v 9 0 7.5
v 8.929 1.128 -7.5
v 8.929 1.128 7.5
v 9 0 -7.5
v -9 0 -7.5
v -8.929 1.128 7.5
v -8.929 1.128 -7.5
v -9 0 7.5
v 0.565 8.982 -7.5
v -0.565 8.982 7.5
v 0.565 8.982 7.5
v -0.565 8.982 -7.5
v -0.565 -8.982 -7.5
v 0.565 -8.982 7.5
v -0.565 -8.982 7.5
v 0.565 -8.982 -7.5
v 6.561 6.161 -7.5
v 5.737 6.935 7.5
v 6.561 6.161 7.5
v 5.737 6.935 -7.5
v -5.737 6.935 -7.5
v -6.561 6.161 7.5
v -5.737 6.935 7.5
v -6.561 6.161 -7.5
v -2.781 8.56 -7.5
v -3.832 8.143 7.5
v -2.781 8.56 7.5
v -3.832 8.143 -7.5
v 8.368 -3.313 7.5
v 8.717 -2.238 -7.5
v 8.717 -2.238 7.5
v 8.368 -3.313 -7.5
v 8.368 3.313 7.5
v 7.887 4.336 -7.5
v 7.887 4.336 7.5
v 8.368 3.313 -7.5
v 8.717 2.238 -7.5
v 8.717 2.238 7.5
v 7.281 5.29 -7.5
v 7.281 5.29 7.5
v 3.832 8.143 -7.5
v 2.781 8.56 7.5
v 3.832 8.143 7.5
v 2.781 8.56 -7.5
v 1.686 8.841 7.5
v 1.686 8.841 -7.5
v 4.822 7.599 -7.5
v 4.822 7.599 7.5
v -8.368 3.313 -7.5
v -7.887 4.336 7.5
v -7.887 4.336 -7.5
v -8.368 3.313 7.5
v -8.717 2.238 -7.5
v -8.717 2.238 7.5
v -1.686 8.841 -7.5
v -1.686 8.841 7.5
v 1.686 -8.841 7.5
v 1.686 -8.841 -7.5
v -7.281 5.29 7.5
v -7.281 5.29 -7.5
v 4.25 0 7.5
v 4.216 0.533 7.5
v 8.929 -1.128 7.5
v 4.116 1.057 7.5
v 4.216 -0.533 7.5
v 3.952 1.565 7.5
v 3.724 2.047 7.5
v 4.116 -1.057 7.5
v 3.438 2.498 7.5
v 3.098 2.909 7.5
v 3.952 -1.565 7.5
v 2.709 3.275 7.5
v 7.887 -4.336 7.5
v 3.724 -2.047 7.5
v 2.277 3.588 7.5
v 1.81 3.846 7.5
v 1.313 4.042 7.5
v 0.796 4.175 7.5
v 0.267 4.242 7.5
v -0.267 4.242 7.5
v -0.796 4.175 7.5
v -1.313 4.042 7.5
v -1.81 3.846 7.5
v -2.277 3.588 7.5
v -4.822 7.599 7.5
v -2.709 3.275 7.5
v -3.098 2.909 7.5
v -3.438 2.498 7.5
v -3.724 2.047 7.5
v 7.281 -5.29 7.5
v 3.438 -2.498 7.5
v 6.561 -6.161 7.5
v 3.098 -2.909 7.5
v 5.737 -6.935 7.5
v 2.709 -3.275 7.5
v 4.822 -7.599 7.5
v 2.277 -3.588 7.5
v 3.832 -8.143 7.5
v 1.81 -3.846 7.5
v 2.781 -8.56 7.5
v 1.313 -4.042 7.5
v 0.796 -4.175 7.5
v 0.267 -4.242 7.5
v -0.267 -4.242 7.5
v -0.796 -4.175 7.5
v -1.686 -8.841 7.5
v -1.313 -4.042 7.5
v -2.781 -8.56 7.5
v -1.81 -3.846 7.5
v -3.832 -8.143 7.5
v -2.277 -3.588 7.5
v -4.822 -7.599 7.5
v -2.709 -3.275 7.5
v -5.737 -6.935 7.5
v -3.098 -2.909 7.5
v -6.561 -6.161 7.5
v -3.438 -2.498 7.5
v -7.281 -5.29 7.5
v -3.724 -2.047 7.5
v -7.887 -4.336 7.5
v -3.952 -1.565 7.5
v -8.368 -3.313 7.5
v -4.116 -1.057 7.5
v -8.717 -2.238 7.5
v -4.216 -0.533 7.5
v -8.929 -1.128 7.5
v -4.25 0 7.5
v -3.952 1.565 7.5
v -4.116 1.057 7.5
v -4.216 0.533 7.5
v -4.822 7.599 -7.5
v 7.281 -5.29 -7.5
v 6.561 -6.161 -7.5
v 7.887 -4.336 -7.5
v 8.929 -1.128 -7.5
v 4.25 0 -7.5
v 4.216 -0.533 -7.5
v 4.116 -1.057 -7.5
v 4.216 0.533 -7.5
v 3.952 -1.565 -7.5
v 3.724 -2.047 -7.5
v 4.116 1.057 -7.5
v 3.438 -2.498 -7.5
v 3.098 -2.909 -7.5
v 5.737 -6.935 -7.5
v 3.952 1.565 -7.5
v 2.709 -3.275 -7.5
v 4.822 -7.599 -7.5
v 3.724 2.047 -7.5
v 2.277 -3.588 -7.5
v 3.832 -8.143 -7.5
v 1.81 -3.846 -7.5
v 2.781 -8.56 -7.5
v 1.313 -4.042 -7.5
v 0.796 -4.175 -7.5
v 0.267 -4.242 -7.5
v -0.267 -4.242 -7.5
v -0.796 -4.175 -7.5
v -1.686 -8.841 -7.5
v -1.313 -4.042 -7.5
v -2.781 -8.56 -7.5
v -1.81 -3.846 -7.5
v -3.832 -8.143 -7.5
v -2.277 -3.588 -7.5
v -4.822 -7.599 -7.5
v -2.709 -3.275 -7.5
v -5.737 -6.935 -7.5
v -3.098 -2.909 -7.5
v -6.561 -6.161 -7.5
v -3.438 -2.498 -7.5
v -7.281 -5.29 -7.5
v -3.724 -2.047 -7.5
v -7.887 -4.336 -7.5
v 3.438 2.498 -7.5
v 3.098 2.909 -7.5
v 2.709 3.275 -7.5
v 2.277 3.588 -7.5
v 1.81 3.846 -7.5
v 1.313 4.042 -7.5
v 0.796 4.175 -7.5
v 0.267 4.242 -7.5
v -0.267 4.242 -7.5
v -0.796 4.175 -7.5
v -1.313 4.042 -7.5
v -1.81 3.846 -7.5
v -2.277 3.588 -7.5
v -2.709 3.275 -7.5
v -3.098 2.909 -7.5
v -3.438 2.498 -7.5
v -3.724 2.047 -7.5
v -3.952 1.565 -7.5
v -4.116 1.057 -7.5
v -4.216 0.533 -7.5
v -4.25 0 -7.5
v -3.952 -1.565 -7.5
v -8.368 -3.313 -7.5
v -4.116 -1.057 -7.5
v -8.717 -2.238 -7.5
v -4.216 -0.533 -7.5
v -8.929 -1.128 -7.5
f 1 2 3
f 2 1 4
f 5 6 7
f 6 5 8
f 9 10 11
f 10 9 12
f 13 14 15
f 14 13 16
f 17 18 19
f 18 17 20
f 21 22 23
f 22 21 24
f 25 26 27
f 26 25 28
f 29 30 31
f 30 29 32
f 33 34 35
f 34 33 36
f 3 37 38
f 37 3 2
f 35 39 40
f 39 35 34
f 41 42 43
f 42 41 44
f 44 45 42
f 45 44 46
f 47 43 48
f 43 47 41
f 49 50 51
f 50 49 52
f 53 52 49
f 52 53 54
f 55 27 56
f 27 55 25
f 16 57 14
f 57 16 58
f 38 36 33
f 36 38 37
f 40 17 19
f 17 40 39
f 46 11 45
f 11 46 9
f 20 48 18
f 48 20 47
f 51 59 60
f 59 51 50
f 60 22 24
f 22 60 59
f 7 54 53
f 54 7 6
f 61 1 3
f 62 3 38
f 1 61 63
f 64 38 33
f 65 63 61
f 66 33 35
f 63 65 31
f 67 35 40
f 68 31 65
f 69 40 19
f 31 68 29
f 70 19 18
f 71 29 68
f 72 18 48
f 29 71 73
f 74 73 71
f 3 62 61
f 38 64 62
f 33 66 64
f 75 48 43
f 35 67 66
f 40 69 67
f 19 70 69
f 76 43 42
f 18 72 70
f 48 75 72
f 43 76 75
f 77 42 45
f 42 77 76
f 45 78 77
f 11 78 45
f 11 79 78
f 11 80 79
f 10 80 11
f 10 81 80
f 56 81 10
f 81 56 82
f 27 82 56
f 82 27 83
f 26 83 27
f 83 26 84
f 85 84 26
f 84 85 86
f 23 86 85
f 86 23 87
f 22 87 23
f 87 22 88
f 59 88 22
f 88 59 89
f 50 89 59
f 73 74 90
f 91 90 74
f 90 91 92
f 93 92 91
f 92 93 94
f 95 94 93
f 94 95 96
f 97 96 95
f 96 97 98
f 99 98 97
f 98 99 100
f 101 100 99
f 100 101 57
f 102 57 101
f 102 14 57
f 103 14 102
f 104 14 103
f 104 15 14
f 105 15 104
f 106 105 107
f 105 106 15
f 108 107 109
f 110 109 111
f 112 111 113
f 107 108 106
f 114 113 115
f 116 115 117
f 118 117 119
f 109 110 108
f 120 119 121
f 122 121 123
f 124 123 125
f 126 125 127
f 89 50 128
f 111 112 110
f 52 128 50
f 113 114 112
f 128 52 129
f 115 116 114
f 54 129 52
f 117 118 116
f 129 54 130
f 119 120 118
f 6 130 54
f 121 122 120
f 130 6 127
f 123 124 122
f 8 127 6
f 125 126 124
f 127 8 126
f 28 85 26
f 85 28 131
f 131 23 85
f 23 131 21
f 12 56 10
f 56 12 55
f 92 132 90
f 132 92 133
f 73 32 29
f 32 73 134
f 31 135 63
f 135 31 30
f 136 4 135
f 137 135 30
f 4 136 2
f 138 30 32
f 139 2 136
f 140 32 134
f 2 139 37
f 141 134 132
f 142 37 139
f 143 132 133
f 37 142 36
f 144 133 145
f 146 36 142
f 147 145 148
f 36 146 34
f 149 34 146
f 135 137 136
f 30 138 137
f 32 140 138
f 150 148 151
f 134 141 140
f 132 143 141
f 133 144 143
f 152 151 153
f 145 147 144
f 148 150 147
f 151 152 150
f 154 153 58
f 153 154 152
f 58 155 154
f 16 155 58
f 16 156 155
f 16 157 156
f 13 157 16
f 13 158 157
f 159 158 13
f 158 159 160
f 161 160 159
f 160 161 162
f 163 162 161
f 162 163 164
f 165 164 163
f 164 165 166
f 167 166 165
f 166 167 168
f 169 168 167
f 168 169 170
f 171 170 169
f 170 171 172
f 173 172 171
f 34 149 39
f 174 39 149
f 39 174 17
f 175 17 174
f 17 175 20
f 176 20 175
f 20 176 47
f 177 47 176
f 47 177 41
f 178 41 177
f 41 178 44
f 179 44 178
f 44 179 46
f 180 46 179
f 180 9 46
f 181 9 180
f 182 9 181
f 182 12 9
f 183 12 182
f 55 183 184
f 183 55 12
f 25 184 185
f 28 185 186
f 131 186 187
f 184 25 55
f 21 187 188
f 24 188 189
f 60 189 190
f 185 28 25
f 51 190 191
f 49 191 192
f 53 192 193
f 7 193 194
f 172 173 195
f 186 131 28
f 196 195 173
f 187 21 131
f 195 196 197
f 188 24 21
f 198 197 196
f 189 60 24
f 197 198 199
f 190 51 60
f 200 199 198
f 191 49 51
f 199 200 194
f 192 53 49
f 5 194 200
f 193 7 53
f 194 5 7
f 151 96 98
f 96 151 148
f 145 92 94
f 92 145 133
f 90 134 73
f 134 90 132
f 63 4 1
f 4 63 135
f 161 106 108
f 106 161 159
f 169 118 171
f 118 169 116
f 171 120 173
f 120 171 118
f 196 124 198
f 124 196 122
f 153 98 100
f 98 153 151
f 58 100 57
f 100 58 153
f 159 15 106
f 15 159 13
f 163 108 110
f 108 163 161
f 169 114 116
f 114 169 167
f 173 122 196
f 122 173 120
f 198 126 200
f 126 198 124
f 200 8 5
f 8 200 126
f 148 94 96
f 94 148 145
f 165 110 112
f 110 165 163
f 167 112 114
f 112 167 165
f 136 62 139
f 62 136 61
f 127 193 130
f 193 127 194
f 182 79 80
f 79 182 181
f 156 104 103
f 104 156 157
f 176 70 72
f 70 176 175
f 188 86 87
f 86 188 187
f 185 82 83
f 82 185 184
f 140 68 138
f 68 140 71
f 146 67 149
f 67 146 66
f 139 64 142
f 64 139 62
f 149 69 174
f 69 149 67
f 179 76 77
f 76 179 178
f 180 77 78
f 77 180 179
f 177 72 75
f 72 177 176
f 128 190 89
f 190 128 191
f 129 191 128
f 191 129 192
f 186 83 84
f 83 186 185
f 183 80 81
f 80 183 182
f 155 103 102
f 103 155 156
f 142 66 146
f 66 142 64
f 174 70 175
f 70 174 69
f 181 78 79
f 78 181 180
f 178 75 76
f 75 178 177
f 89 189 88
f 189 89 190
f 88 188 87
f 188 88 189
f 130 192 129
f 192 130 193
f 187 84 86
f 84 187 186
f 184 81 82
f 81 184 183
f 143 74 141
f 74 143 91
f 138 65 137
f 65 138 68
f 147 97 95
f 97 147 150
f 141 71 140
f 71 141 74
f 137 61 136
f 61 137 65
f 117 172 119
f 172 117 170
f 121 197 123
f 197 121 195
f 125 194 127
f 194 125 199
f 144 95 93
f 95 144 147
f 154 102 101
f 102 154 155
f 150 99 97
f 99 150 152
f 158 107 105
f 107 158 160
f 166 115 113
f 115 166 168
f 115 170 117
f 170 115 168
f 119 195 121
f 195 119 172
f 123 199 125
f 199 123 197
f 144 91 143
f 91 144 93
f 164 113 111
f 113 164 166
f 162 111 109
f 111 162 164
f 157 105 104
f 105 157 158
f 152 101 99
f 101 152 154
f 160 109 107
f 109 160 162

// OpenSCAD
$fn = 50;


difference() {
	union() {
		translate(v = [0, 0, -7.5000000000]) {
			cylinder(h = 15, r = 9.0000000000);
		}
	}
	union() {
		translate(v = [0, 0, -100.0000000000]) {
			cylinder(h = 200, r = 4.2500000000);
		}
	}
}
